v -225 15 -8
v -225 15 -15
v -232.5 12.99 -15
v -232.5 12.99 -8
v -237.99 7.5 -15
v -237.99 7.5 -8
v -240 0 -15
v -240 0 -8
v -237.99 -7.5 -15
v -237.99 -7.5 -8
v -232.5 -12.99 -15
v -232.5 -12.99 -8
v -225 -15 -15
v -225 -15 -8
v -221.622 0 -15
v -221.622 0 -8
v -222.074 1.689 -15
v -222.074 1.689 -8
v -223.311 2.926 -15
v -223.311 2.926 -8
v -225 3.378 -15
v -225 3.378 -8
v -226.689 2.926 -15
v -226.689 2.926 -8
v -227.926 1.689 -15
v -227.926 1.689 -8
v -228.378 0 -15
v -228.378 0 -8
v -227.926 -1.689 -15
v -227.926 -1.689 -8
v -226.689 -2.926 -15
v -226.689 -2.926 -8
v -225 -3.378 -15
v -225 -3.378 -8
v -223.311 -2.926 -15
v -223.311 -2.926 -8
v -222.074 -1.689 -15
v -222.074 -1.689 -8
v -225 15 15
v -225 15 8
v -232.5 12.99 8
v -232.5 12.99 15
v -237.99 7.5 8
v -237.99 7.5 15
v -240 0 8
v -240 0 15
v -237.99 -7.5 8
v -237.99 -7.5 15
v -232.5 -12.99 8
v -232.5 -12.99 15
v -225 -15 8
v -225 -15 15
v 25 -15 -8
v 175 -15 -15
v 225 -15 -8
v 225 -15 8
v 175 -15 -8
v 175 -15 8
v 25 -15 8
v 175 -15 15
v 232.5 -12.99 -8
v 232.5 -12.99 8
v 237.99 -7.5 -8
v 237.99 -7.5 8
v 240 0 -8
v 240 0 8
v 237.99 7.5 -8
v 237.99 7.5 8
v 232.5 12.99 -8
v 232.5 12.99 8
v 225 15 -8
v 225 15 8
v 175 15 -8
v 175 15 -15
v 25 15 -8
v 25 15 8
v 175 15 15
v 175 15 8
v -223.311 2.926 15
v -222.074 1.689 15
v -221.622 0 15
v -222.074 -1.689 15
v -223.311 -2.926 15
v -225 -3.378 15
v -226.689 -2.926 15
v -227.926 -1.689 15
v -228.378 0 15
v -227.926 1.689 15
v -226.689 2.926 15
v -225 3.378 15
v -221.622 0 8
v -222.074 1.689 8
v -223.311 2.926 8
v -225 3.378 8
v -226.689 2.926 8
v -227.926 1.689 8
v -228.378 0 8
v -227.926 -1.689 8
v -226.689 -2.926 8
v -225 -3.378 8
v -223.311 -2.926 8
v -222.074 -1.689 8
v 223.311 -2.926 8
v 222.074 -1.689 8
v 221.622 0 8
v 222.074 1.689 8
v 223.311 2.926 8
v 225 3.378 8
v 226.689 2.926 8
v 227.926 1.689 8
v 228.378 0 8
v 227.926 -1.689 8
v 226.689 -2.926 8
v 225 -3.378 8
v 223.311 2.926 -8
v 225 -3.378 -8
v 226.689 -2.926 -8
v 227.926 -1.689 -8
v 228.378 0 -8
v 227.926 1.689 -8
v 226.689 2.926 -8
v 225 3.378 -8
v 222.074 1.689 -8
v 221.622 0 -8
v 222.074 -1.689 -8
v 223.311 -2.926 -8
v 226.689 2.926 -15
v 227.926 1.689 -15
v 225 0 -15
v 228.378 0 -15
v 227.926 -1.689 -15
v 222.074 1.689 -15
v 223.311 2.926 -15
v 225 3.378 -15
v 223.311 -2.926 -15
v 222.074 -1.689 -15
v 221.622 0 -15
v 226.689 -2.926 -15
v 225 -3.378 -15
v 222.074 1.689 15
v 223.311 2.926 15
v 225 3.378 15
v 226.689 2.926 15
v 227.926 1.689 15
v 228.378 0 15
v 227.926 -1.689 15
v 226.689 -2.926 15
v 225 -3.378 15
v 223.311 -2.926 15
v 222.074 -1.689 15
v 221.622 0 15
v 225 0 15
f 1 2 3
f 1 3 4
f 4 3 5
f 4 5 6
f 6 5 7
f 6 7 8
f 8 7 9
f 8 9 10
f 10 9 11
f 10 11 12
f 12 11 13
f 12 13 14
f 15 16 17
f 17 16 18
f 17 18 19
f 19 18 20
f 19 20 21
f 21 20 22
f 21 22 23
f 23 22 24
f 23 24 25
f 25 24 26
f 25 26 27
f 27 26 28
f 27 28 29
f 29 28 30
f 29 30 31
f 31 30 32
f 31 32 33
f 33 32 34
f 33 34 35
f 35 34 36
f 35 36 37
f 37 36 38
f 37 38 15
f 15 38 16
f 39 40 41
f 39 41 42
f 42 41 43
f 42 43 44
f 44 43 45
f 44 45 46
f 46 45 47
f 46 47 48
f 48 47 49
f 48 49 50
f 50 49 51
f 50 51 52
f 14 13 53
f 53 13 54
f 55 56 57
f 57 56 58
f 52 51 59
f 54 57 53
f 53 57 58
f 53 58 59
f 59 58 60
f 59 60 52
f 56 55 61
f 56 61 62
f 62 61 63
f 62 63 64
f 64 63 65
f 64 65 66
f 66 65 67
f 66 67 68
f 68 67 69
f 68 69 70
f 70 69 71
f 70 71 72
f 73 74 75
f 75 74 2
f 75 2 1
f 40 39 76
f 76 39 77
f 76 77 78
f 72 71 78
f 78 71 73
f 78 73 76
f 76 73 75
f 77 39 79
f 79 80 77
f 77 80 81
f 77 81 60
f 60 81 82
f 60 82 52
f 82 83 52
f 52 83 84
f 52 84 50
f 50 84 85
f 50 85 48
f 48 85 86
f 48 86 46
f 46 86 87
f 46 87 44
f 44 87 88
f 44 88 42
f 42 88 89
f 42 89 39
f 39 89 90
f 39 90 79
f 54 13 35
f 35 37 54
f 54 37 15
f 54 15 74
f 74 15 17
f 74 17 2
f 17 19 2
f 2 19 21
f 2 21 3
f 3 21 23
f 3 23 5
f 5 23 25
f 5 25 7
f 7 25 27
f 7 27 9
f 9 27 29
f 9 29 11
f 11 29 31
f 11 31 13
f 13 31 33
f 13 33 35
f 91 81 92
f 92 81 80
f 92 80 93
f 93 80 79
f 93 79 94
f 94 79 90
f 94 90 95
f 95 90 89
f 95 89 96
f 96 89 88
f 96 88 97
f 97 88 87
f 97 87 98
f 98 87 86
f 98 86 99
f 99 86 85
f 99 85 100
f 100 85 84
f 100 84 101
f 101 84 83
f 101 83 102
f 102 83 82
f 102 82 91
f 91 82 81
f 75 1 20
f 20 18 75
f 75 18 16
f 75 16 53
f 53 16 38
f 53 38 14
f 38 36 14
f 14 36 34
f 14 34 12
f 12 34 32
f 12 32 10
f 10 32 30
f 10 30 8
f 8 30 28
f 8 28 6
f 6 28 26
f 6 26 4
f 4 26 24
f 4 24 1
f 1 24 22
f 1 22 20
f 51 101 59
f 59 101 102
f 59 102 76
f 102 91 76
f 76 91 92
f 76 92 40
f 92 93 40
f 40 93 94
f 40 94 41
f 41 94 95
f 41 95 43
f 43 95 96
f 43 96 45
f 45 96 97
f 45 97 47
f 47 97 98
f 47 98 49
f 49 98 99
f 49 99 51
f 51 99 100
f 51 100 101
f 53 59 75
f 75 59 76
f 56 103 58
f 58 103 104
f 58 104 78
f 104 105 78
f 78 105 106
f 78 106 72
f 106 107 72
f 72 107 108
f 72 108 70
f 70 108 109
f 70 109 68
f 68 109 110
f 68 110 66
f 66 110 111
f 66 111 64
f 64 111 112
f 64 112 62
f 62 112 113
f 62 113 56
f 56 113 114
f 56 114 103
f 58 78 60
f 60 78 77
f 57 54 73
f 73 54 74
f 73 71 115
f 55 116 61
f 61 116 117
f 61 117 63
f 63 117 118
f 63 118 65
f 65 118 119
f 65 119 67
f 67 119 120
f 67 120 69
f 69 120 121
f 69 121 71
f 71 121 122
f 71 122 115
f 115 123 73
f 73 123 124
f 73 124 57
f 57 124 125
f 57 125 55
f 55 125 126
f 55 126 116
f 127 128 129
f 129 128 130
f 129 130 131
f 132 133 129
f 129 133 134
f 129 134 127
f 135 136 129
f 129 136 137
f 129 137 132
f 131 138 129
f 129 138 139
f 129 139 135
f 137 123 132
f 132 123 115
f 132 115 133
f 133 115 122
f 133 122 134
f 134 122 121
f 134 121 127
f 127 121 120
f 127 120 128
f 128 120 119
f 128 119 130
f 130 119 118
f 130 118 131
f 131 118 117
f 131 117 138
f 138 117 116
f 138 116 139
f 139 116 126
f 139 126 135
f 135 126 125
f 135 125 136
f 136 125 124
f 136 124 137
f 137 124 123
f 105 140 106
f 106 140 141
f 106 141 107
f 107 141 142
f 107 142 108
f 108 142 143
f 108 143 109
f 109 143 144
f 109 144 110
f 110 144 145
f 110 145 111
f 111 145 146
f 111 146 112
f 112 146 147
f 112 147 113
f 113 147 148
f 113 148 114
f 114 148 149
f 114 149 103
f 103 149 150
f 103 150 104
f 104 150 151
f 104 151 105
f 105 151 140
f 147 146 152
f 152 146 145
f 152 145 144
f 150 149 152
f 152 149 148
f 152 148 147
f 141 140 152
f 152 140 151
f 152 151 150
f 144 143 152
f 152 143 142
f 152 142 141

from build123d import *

# Parameters (mm, degrees)
BOSS_EXTRUDE1_DEPTH             = 15
H_0_266_DIAMETER_HOLE1_D        = 6.7564
SKETCH5_W                       = 1000
SKETCH5_H                       = 16
SKETCH5_W_2                     = 70
SKETCH5_H_2                     = 20.916111238
CUT_EXTRUDE1_DEPTH              = 243.332416321
BOSS_EXTRUDE4_REACH             = 242.936
SKETCH6_R                       = 3.3782
BOSS_EXTRUDE4_DIRECTION_2_REACH = 242.936


with BuildPart() as part:
    # Sketch1 → Boss-Extrude1 (new, symmetric)
    with BuildSketch(Plane.XY):
        with BuildLine():
            Line((-225, 15), (225, 15))
            ThreePointArc((225, 15), (240, 0), (225, -15))
            Line((225, -15), (-225, -15))
            ThreePointArc((-225, -15), (-240, 0), (-225, 15))
        make_face()
    extrude(amount=BOSS_EXTRUDE1_DEPTH, both=True)

    # H (0.266) Diameter Hole1 (through all)
    with Locations(Plane.XY.offset(15)):
        with Locations((-225, 0), (225, 0)):
            Hole(H_0_266_DIAMETER_HOLE1_D / 2)

    # Sketch5 → Cut-Extrude1 (cut, through all)
    with BuildSketch(Plane(origin=(0, 15, 0), x_dir=(1, 0, 0), z_dir=(0, 1, 0))):
        with Locations((-475, 0)):
            Rectangle(SKETCH5_W, SKETCH5_H)
        with Locations((210, 18.458055619)):
            Rectangle(SKETCH5_W_2, SKETCH5_H_2)
        with Locations((210, -18.458055619)):
            Rectangle(SKETCH5_W_2, SKETCH5_H_2)
    extrude(amount=-CUT_EXTRUDE1_DEPTH, mode=Mode.SUBTRACT)

    # Boss-Extrude4: up to this face of the body (flat: up to its plane)
    boss_extrude4_end = Plane(part.part.faces().sort_by_distance((-30.33914406, 0, 15))[0])
    # Sketch6 → Boss-Extrude4 (add, up to the picked face)
    with BuildSketch(Plane.XY, mode=Mode.PRIVATE) as boss_extrude4_sk1:
        with Locations((225, 0)):
            Circle(SKETCH6_R)
    boss_extrude4_tool1 = split(extrude(boss_extrude4_sk1.sketch, amount=BOSS_EXTRUDE4_REACH, mode=Mode.PRIVATE), bisect_by=boss_extrude4_end, keep=Keep.BOTH, mode=Mode.PRIVATE)
    add(boss_extrude4_tool1.solids().sort_by(Axis((225, 0, 0), (0, 0, 1)))[0])

    # Boss-Extrude4 direction 2: up to this face of the body (flat: up to its plane)
    boss_extrude4_direction_2_end = Plane(part.part.faces().sort_by_distance((-30.33914406, 0, -15))[0])
    # Sketch6 → Boss-Extrude4 direction 2 (add, up to the picked face)
    with BuildSketch(Plane.XY, mode=Mode.PRIVATE) as boss_extrude4_direction_2_sk1:
        with Locations((225, 0)):
            Circle(SKETCH6_R)
    boss_extrude4_direction_2_tool1 = split(extrude(boss_extrude4_direction_2_sk1.sketch, amount=-BOSS_EXTRUDE4_DIRECTION_2_REACH, mode=Mode.PRIVATE), bisect_by=boss_extrude4_direction_2_end, keep=Keep.BOTH, mode=Mode.PRIVATE)
    add(boss_extrude4_direction_2_tool1.solids().sort_by(Axis((225, 0, 0), (0, 0, -1)))[0])


solid = part.part
